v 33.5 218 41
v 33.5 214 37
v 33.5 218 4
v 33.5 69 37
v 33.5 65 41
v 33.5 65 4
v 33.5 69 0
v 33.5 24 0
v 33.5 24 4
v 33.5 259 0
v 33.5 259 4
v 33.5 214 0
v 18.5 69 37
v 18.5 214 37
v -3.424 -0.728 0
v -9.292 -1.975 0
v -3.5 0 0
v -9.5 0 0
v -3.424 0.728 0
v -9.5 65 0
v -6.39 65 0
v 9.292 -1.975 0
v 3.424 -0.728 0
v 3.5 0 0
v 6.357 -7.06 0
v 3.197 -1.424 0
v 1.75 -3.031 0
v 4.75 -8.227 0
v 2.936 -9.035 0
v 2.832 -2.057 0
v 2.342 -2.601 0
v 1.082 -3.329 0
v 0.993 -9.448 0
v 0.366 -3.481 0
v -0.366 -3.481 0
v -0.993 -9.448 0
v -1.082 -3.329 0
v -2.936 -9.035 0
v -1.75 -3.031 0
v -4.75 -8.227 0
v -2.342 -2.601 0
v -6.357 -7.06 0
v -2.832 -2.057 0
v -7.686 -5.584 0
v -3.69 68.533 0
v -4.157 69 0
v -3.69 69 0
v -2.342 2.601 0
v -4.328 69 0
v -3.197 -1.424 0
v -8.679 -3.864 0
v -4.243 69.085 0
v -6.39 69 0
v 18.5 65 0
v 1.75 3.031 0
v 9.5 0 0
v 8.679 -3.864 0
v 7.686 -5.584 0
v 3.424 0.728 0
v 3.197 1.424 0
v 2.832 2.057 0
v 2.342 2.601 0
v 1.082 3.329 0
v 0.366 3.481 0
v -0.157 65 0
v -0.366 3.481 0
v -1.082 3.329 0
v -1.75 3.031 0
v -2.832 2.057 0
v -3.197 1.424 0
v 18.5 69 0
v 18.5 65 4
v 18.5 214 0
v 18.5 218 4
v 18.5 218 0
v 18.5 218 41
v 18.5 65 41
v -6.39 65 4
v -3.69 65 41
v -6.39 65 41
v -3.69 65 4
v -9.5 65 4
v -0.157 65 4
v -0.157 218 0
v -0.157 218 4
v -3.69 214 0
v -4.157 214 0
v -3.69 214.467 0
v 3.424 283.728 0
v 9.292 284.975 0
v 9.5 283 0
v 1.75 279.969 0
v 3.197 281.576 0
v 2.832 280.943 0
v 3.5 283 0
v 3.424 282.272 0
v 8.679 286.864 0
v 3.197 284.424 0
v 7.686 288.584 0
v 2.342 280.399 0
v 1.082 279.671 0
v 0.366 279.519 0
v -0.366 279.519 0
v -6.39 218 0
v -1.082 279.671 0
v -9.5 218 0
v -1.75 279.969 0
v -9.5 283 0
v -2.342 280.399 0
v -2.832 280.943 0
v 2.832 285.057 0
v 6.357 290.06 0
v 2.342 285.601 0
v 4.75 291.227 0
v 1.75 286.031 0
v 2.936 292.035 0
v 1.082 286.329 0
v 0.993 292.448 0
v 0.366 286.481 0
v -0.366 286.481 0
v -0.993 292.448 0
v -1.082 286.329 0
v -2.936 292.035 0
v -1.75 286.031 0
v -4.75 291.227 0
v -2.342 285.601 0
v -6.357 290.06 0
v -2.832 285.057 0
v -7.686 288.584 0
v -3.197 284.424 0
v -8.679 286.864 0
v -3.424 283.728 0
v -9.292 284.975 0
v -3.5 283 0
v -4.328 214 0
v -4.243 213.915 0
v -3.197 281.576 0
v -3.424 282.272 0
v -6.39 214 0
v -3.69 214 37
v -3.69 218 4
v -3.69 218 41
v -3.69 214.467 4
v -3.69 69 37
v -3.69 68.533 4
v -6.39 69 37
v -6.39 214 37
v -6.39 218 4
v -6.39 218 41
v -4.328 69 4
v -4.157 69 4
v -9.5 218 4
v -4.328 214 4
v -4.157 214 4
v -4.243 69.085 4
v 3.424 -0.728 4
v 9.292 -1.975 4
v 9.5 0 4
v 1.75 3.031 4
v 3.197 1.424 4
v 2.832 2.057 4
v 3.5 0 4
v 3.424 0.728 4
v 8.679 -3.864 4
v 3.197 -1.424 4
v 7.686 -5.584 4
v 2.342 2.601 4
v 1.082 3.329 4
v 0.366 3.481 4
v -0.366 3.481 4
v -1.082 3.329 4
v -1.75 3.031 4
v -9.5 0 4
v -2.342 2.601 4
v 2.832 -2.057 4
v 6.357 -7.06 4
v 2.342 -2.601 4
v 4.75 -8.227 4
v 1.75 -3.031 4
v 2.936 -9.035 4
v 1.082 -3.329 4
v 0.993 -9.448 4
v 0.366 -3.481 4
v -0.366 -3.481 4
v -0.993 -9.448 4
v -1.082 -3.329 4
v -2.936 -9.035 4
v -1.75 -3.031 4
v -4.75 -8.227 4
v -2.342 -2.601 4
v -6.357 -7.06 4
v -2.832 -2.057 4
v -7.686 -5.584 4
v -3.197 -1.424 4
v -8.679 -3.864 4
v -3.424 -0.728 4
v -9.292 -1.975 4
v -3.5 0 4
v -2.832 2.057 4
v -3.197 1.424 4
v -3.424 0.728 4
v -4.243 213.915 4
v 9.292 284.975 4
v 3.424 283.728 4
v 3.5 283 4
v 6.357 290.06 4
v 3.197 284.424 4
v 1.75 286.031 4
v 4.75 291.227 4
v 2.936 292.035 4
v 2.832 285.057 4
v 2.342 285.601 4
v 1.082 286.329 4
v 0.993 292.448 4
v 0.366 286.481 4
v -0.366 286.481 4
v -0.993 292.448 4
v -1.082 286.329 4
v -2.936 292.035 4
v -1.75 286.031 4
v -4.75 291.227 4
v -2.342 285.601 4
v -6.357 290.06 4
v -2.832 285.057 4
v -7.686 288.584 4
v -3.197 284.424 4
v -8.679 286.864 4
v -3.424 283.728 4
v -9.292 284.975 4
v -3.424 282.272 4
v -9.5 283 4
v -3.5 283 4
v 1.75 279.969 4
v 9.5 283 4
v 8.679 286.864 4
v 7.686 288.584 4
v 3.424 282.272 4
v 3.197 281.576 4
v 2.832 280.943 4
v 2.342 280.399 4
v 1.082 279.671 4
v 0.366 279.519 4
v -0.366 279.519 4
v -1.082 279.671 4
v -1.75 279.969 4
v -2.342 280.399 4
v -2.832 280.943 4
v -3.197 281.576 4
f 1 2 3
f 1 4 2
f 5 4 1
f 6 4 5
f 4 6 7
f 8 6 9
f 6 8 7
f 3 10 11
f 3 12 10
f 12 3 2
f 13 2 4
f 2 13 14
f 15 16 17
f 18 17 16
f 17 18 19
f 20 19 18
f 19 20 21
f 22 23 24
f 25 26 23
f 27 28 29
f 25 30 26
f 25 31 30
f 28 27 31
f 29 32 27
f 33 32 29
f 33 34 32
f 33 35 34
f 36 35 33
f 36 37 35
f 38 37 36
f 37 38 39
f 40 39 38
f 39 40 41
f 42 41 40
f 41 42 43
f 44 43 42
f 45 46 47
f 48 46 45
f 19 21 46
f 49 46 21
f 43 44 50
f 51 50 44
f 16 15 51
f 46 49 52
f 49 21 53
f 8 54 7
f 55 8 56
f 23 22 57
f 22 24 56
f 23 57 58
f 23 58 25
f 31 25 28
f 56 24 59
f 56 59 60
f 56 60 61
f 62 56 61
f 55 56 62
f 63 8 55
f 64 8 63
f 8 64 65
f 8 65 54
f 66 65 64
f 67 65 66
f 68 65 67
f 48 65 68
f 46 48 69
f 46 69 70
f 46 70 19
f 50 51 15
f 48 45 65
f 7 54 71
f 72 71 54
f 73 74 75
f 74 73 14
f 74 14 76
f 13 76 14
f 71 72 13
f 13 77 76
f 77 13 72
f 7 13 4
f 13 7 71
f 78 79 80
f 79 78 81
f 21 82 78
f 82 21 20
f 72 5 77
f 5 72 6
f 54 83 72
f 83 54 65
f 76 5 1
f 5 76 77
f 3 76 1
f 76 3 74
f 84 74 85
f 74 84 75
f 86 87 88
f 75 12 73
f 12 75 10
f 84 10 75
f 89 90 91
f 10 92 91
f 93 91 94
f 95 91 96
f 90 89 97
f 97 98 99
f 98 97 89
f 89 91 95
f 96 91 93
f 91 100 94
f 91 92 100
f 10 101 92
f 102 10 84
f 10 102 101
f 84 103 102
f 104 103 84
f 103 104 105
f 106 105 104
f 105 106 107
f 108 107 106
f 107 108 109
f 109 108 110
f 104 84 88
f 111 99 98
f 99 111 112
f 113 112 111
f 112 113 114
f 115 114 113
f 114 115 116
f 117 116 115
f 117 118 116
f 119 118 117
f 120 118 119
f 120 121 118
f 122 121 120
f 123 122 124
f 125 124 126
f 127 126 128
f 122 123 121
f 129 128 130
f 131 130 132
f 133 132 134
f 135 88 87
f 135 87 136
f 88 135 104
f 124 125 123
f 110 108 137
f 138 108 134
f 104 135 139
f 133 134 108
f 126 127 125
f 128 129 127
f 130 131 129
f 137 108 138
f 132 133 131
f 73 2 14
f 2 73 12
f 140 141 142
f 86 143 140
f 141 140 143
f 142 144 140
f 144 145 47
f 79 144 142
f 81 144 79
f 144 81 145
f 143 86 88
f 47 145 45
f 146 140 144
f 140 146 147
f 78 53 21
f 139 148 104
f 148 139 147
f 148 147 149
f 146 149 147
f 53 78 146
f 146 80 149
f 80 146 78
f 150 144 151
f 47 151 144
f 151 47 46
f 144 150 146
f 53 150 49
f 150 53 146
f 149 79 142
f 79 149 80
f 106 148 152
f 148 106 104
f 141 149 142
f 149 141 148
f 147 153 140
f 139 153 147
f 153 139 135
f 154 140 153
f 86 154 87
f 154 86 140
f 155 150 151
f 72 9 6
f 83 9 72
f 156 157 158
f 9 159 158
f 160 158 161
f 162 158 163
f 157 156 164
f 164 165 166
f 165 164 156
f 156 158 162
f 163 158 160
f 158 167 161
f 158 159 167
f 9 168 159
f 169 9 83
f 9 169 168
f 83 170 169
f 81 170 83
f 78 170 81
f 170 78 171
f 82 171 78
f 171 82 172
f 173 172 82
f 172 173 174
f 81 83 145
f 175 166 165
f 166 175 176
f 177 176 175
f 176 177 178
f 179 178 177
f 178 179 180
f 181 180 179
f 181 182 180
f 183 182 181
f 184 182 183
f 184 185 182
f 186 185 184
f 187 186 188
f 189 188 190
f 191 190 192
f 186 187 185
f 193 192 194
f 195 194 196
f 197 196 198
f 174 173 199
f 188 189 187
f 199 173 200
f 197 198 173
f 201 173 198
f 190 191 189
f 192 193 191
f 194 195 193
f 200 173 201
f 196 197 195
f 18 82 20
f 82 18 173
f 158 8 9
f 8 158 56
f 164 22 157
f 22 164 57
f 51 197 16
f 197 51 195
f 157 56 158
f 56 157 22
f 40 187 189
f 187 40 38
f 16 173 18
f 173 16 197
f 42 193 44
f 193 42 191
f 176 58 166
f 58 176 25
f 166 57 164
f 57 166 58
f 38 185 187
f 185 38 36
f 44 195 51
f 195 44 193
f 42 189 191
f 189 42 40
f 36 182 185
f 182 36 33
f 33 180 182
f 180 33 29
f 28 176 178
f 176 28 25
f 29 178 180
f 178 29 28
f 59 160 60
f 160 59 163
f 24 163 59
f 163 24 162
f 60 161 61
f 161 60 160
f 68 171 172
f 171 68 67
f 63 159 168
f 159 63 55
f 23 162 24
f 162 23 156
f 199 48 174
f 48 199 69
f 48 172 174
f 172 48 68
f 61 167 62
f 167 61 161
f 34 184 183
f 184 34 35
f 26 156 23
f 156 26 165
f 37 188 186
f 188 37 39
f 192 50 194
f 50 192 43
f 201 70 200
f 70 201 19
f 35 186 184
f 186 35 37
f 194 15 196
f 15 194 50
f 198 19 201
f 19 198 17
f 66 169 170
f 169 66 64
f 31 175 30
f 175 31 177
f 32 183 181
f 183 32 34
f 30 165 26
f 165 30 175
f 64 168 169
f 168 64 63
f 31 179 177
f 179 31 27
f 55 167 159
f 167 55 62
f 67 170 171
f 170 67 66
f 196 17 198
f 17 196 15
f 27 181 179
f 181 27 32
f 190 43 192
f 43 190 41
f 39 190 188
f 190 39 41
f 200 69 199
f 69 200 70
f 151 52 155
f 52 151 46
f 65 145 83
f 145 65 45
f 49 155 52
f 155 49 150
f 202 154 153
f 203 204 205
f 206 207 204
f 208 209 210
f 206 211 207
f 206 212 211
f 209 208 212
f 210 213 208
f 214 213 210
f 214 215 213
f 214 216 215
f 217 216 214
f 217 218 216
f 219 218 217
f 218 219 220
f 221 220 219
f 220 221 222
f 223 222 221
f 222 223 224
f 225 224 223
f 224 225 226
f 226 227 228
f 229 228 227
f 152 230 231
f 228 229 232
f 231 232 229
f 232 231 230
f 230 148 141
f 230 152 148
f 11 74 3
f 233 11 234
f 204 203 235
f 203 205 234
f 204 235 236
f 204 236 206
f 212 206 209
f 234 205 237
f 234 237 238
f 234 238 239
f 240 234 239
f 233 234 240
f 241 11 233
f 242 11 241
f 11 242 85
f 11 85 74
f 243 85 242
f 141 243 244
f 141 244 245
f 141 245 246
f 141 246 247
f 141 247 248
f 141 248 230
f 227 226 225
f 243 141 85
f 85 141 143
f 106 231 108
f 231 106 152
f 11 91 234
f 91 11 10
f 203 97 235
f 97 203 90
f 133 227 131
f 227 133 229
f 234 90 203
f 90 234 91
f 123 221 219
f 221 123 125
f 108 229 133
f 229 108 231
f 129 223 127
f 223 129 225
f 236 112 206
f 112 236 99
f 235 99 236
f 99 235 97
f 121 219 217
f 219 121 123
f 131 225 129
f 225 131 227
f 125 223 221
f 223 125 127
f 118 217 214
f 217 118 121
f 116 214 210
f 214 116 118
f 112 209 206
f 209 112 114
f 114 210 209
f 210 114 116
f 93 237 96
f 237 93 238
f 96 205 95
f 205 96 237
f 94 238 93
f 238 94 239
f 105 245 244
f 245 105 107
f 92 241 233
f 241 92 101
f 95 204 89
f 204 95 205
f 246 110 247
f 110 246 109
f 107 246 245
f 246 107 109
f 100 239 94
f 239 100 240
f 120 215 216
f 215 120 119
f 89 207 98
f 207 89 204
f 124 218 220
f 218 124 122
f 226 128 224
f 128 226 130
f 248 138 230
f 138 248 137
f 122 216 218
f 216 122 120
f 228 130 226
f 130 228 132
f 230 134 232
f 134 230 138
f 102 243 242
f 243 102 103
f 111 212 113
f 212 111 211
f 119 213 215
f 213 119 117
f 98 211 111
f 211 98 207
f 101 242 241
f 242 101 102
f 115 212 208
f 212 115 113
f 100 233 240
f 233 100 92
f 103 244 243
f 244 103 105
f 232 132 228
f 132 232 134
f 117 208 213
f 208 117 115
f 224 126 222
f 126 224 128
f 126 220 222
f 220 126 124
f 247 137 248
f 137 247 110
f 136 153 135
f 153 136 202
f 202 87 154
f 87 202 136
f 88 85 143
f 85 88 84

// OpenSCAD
$fn = 30;
$thickness = 4;
$screw_hole_radius = 3.5;
$tab_length = 69;
$back_depth = 37;
$back_width = 145;
$back_hang = 26;

$calc_height = 2*($screw_hole_radius+$thickness);
$calc_tab_length = $tab_length-$thickness;

module tab() {
    difference() {
        union() {
            cylinder(h=$thickness, r=$screw_hole_radius+$thickness+2);
            translate([-($calc_height/2)-2,0,0]) {
                cube([$calc_height, $calc_tab_length, $thickness]);
                difference() {
                    cube([$back_hang+$calc_height+2, $calc_tab_length, $thickness]);
                    translate([0,-19,-0.5]) {
                        rotate(-45,[0,0,1]) {
                            cube([$back_hang+$calc_height, $calc_tab_length, $thickness+1]);
                        }
                    }
                }
            }
        }
        translate([0,0,-($thickness/2)]) {
            cylinder(h=2*$thickness, r=$screw_hole_radius);
        }
    }
    
    translate([0,60.6,0]) {
        rotate(45,[0,0,1]) {
            cube([3,9,$thickness]);
        }
    }
}

tab();

translate([0,$back_width+(2*$tab_length),0]) {
    scale([1, -1, 1]) {
        tab();
    }
}

module bracket_back() {
    translate([-($calc_height/2)+$back_hang,$calc_tab_length,0]) {
        cube([$calc_height,$thickness,$back_depth]);
    
        translate([0,0,$back_depth]) {
            cube([$calc_height,$back_width+(2*$thickness),$thickness]);
        }
    
        translate([0,$back_width+$thickness,0]) {
            cube([$calc_height,$thickness,$back_depth]);
        }
    }
}

bracket_back();

scale([0.18,1,1]) {
    translate([-54,0,0]) {
        bracket_back();
    }
}
